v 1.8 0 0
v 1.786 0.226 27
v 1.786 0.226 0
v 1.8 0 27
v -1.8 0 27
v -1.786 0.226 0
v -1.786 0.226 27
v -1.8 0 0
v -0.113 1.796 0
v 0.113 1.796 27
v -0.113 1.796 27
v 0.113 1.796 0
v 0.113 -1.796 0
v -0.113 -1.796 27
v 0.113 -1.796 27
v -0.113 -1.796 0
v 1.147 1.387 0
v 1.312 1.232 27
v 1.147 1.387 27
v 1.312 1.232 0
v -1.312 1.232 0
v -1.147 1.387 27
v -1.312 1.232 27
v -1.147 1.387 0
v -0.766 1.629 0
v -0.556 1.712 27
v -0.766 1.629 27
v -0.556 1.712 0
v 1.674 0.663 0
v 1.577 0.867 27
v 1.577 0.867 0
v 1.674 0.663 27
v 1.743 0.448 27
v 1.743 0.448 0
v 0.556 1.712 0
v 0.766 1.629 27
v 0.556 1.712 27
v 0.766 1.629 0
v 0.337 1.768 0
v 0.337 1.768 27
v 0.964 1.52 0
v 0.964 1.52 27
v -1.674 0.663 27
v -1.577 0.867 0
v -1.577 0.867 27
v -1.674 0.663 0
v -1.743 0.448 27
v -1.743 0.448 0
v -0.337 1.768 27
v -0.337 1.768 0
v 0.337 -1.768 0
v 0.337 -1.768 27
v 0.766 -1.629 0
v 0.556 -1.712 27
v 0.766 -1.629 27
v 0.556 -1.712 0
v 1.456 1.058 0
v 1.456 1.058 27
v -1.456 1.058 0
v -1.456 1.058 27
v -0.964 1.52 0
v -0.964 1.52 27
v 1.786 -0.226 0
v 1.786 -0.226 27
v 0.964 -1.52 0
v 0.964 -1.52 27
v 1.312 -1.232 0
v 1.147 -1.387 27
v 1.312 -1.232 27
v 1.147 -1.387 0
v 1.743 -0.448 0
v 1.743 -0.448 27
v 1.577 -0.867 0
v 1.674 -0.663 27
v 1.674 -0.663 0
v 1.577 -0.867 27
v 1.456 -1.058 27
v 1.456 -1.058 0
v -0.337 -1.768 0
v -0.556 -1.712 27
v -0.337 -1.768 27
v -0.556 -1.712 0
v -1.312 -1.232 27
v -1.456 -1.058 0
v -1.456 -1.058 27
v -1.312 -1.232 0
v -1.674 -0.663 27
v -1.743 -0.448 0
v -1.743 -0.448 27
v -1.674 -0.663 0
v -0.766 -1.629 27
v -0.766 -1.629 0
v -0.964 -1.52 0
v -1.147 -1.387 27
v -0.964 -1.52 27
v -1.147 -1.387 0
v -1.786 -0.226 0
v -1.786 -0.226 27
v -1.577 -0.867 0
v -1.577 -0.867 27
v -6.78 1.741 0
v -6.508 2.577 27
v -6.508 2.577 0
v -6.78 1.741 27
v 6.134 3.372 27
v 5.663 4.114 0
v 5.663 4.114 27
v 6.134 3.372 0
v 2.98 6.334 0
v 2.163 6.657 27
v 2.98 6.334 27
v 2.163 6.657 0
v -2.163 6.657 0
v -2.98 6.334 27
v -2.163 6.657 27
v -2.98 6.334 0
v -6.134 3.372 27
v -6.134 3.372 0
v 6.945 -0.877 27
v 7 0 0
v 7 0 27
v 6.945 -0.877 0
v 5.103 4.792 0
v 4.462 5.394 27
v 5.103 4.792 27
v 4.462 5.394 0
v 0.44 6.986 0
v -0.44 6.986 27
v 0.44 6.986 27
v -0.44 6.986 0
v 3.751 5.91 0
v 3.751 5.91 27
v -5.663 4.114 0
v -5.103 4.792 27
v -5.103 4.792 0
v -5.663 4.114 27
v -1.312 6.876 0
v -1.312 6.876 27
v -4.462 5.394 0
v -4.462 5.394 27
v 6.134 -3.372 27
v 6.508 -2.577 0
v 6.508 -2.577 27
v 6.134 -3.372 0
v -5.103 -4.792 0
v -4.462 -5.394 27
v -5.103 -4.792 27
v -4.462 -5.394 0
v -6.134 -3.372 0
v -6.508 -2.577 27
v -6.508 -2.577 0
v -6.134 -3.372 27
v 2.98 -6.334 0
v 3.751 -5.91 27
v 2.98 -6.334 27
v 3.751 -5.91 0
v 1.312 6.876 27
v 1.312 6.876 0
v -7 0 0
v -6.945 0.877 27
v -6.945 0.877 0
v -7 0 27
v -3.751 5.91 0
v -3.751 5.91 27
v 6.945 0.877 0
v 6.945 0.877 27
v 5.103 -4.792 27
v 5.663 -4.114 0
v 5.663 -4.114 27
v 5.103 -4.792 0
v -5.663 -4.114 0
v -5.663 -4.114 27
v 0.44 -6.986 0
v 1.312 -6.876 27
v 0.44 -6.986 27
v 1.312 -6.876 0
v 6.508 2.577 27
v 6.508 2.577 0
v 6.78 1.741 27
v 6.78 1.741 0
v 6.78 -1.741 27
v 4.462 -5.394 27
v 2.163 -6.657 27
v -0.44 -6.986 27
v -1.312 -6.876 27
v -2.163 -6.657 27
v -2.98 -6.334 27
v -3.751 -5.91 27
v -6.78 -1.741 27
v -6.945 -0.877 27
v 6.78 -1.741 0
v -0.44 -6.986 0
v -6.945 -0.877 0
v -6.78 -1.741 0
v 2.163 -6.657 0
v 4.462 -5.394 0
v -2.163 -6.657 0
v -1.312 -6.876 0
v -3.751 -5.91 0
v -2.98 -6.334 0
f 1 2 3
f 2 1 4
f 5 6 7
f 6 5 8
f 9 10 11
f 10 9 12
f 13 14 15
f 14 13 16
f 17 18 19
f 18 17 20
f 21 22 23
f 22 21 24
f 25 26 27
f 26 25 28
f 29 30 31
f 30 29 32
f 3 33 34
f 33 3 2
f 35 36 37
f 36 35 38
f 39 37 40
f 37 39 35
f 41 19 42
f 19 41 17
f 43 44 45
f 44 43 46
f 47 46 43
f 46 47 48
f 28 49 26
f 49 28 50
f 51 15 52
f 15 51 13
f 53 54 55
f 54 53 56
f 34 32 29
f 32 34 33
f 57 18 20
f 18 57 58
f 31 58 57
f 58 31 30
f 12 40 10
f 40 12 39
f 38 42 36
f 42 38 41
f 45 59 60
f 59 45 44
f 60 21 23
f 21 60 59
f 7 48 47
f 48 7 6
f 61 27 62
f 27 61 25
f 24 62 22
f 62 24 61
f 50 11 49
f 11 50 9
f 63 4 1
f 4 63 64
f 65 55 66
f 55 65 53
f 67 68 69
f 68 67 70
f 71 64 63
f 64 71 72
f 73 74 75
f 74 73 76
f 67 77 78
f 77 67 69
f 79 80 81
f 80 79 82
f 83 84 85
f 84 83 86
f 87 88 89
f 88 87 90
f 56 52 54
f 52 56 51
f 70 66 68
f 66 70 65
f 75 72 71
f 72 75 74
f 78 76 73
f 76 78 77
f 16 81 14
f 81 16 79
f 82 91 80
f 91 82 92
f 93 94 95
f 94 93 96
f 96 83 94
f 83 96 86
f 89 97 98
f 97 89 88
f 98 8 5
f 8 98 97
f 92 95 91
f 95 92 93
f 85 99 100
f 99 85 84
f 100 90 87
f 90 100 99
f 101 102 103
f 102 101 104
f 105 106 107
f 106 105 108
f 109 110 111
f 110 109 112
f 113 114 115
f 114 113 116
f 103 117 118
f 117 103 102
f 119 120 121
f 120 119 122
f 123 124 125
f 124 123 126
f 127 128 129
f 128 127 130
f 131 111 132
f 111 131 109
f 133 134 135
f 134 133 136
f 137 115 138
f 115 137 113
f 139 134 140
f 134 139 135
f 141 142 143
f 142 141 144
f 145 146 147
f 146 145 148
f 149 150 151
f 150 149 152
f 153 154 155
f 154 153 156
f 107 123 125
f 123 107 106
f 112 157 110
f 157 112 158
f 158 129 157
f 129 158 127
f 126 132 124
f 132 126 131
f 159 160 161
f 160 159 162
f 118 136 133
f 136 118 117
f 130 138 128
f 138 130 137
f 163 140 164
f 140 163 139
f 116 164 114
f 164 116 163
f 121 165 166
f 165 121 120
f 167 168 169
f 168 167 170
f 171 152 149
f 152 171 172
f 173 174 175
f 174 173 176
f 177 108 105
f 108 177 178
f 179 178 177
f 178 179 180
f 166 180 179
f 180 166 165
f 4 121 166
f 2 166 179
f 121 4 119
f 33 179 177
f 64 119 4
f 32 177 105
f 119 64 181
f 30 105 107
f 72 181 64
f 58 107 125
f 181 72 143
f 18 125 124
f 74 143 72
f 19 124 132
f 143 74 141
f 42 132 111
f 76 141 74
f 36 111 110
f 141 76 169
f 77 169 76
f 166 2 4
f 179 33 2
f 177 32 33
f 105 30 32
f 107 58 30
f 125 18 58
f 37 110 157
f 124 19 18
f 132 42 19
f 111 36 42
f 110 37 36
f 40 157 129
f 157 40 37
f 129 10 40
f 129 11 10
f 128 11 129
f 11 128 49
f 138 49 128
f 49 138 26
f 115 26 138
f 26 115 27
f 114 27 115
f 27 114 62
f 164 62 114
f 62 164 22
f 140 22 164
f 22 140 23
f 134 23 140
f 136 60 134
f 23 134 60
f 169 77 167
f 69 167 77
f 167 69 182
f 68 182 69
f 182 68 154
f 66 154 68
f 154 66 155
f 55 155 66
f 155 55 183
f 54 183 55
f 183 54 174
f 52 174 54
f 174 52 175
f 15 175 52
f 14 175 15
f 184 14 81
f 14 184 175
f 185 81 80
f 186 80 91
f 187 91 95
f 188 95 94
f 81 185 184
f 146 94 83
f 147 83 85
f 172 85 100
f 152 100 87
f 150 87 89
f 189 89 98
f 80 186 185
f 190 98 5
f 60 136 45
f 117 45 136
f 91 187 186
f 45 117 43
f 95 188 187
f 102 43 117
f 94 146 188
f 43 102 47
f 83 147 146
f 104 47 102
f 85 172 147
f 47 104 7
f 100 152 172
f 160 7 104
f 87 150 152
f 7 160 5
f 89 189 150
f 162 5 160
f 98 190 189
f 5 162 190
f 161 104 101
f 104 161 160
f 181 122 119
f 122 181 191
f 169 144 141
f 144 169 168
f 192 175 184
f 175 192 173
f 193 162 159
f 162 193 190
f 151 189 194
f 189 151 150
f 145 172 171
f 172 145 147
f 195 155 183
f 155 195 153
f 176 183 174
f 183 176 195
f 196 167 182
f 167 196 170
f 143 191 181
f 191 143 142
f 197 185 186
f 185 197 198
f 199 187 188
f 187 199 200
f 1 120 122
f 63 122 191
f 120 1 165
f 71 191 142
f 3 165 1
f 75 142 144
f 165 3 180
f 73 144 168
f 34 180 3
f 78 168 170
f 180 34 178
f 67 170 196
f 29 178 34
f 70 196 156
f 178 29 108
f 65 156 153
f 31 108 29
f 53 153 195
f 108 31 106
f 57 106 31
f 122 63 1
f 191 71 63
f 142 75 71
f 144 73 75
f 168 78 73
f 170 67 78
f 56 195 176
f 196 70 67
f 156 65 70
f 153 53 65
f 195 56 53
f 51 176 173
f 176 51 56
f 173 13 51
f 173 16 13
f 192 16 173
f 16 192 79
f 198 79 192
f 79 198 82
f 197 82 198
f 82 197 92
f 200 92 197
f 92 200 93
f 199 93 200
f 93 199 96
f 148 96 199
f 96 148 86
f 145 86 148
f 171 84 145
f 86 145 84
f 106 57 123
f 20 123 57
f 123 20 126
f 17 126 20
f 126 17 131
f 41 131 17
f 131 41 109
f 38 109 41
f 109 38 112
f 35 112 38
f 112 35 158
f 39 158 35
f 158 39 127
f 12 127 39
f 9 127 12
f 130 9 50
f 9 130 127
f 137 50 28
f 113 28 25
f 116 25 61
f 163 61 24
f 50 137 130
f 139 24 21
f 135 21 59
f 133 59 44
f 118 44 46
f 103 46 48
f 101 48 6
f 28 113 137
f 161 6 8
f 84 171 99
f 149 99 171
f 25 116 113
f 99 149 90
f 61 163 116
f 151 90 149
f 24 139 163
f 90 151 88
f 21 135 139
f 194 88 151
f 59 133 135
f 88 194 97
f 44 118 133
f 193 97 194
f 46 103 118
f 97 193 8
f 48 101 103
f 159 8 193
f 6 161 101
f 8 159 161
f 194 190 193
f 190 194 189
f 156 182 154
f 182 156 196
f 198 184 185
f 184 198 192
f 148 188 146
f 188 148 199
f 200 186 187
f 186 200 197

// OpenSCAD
$fn = 50;


difference() {
	union() {
		cylinder(h = 27, r = 7.0000000000);
	}
	union() {
		translate(v = [0, 0, -100]) {
			cylinder(h = 200, r = 1.8000000000);
		}
		translate(v = [0, 0, -100]) {
			cylinder(h = 200, r = 1.8000000000);
		}
	}
}
